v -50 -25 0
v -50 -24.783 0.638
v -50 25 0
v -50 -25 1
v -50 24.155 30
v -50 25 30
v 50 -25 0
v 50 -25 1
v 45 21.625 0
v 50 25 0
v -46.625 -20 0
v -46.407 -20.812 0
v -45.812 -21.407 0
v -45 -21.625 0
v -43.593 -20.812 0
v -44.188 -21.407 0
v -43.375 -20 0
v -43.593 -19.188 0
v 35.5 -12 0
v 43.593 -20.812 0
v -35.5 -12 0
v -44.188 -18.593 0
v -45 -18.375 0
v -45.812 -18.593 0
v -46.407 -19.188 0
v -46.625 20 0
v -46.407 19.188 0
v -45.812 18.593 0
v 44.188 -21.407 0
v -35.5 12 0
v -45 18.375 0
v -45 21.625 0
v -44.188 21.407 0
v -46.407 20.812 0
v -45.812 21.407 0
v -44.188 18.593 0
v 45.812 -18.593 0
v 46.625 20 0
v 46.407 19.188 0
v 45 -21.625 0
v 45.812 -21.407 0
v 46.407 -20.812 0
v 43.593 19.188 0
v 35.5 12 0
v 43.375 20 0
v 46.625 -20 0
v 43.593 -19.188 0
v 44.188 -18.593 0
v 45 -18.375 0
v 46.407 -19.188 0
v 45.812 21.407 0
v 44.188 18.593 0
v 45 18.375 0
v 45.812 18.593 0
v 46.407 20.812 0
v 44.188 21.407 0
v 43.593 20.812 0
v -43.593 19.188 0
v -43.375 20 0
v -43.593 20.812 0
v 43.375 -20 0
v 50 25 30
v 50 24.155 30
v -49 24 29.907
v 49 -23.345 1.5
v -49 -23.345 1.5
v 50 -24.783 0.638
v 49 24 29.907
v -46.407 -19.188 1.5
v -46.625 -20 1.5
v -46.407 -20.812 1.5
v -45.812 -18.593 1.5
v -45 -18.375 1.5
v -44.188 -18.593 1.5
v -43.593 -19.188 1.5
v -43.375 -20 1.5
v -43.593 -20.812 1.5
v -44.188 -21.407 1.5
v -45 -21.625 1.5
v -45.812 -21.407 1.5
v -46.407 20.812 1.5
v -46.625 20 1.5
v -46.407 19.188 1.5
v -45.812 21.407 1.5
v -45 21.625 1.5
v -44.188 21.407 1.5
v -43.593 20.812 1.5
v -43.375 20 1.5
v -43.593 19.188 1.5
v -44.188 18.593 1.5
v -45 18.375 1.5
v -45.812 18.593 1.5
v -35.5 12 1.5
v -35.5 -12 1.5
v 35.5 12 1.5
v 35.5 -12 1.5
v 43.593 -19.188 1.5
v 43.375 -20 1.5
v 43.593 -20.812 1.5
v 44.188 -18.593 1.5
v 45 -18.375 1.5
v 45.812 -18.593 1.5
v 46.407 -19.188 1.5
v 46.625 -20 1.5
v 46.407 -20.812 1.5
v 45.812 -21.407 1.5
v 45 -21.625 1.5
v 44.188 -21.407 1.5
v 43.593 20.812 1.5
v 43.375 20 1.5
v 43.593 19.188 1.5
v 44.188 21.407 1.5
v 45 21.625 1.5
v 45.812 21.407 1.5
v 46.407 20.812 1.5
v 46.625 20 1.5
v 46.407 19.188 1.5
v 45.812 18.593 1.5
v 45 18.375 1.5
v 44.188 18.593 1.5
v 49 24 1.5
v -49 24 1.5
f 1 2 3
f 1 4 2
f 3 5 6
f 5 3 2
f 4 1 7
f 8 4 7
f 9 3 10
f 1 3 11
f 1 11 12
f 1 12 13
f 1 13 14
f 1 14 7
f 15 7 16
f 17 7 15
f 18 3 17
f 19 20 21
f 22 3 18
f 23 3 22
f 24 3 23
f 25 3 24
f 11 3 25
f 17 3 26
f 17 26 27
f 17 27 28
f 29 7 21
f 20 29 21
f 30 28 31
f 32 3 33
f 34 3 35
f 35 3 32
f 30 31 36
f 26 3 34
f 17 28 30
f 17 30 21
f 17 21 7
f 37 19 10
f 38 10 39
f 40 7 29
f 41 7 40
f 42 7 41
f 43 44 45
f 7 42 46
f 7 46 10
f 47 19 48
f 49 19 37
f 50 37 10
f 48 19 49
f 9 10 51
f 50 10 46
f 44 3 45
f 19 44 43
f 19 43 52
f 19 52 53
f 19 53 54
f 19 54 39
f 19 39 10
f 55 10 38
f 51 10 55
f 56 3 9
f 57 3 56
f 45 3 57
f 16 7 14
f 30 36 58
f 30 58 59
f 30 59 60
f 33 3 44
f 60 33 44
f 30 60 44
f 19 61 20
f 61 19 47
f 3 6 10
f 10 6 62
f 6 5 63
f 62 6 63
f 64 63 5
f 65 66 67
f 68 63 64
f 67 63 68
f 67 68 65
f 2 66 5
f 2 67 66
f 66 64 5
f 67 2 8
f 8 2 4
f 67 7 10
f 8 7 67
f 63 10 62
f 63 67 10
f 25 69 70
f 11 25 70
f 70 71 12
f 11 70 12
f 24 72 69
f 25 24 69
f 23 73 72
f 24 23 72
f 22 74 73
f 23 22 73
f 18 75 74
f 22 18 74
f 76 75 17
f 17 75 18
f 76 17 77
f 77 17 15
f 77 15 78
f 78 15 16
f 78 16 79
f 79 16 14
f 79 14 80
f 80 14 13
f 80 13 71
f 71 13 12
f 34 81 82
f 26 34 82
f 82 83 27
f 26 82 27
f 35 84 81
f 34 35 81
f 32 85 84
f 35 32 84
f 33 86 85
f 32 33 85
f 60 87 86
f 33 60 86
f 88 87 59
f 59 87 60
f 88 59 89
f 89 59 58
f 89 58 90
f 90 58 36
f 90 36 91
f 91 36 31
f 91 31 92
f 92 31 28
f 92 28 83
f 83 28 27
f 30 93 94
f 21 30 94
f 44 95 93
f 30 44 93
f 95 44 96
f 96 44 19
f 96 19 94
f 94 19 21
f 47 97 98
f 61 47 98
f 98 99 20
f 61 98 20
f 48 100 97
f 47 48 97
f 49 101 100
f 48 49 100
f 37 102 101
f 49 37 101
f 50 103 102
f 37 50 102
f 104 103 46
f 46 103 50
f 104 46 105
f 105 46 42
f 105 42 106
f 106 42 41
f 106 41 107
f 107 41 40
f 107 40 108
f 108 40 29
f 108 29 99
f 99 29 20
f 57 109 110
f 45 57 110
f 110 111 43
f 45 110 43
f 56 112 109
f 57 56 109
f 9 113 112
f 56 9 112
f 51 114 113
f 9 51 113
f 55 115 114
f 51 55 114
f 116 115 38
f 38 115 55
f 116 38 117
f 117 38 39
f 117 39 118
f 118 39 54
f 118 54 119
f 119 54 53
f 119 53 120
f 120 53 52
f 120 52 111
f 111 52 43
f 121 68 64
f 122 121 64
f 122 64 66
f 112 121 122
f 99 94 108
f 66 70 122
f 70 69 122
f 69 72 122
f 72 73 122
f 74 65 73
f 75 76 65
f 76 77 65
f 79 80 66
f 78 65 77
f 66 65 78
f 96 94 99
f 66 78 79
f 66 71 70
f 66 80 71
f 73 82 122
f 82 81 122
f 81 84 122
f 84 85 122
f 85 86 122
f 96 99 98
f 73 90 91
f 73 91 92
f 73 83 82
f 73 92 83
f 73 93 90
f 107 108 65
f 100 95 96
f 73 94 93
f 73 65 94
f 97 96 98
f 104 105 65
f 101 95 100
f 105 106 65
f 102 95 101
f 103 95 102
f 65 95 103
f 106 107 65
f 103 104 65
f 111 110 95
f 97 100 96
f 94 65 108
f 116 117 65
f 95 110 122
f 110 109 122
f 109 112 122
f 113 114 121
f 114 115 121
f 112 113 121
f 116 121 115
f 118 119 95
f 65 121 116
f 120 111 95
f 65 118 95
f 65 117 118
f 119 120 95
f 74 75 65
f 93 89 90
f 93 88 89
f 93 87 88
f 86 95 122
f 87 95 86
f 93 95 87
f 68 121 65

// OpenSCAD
/*
	LCD Faceplate with Sunshade
	Daniel Omar Basconcello Filho - daniel@robotizando.com.br

   --------------------------------------------------------------------
   Copyright (C) 2015 Daniel Omar Basconcello Filho

   This program is free software; you can redistribute it and/or modify
   it under the terms of the GNU General Public License as published by
   the Free Software Foundation; either version 3 of the License, or
   (at your option) any later version.

   This program is distributed in the hope that it will be useful,
   but WITHOUT ANY WARRANTY; without even the implied warranty of
   MERCHANTABILITY or FITNESS FOR A PARTICULAR PURPOSE.  See the
   GNU General Public License for more details.

   You should have received a copy of the GNU General Public License
   along with this program; if not, write to the Free Software Foundation,
   Inc., 51 Franklin Street, Fifth Floor, Boston, MA 02110-1301  USA
*/

$fn = 12;
ajuste_xy = 0.25;

d_furo_m3 = 3 + ajuste_xy;

x_lcd = 71;
y_lcd = 24;

x_size = 100;
y_size = 50;

h_frente = 2.5;
h_total = 30;
parede = 2;



hipo = sqrt( (y_size*y_size) + (h_total*h_total) );
a = acos( y_size/hipo );
echo(a);



translate([0,0,h_total/2])
difference(){


	cube([x_size, y_size, h_total], center=true);

	translate([0,0,h_frente-1])
		cube([x_size-parede, y_size-parede, h_total], center=true);

	translate([0,0, 0])
	cube([x_lcd, y_lcd, h_total], center=true);

	translate([0,0,-h_total]){
		translate([-x_size/2 + 5, -y_size/2 +5, 0])
			cylinder(h=h_total, r=d_furo_m3/2);

		translate([-x_size/2 + 5, y_size/2 -5, 0])
			cylinder(h=h_total, r=d_furo_m3/2);

		translate([x_size/2 - 5, -y_size/2 +5, 0])
			cylinder(h=h_total, r=d_furo_m3/2);

		translate([x_size/2 - 5, y_size/2 -5, 0])
			cylinder(h=h_total, r=d_furo_m3/2);
	}


translate([0,-7.5, (h_total-parede)/2-0.5  ])
rotate([a,0,0])
	cube([x_size, hipo, h_total], center=true);


}
